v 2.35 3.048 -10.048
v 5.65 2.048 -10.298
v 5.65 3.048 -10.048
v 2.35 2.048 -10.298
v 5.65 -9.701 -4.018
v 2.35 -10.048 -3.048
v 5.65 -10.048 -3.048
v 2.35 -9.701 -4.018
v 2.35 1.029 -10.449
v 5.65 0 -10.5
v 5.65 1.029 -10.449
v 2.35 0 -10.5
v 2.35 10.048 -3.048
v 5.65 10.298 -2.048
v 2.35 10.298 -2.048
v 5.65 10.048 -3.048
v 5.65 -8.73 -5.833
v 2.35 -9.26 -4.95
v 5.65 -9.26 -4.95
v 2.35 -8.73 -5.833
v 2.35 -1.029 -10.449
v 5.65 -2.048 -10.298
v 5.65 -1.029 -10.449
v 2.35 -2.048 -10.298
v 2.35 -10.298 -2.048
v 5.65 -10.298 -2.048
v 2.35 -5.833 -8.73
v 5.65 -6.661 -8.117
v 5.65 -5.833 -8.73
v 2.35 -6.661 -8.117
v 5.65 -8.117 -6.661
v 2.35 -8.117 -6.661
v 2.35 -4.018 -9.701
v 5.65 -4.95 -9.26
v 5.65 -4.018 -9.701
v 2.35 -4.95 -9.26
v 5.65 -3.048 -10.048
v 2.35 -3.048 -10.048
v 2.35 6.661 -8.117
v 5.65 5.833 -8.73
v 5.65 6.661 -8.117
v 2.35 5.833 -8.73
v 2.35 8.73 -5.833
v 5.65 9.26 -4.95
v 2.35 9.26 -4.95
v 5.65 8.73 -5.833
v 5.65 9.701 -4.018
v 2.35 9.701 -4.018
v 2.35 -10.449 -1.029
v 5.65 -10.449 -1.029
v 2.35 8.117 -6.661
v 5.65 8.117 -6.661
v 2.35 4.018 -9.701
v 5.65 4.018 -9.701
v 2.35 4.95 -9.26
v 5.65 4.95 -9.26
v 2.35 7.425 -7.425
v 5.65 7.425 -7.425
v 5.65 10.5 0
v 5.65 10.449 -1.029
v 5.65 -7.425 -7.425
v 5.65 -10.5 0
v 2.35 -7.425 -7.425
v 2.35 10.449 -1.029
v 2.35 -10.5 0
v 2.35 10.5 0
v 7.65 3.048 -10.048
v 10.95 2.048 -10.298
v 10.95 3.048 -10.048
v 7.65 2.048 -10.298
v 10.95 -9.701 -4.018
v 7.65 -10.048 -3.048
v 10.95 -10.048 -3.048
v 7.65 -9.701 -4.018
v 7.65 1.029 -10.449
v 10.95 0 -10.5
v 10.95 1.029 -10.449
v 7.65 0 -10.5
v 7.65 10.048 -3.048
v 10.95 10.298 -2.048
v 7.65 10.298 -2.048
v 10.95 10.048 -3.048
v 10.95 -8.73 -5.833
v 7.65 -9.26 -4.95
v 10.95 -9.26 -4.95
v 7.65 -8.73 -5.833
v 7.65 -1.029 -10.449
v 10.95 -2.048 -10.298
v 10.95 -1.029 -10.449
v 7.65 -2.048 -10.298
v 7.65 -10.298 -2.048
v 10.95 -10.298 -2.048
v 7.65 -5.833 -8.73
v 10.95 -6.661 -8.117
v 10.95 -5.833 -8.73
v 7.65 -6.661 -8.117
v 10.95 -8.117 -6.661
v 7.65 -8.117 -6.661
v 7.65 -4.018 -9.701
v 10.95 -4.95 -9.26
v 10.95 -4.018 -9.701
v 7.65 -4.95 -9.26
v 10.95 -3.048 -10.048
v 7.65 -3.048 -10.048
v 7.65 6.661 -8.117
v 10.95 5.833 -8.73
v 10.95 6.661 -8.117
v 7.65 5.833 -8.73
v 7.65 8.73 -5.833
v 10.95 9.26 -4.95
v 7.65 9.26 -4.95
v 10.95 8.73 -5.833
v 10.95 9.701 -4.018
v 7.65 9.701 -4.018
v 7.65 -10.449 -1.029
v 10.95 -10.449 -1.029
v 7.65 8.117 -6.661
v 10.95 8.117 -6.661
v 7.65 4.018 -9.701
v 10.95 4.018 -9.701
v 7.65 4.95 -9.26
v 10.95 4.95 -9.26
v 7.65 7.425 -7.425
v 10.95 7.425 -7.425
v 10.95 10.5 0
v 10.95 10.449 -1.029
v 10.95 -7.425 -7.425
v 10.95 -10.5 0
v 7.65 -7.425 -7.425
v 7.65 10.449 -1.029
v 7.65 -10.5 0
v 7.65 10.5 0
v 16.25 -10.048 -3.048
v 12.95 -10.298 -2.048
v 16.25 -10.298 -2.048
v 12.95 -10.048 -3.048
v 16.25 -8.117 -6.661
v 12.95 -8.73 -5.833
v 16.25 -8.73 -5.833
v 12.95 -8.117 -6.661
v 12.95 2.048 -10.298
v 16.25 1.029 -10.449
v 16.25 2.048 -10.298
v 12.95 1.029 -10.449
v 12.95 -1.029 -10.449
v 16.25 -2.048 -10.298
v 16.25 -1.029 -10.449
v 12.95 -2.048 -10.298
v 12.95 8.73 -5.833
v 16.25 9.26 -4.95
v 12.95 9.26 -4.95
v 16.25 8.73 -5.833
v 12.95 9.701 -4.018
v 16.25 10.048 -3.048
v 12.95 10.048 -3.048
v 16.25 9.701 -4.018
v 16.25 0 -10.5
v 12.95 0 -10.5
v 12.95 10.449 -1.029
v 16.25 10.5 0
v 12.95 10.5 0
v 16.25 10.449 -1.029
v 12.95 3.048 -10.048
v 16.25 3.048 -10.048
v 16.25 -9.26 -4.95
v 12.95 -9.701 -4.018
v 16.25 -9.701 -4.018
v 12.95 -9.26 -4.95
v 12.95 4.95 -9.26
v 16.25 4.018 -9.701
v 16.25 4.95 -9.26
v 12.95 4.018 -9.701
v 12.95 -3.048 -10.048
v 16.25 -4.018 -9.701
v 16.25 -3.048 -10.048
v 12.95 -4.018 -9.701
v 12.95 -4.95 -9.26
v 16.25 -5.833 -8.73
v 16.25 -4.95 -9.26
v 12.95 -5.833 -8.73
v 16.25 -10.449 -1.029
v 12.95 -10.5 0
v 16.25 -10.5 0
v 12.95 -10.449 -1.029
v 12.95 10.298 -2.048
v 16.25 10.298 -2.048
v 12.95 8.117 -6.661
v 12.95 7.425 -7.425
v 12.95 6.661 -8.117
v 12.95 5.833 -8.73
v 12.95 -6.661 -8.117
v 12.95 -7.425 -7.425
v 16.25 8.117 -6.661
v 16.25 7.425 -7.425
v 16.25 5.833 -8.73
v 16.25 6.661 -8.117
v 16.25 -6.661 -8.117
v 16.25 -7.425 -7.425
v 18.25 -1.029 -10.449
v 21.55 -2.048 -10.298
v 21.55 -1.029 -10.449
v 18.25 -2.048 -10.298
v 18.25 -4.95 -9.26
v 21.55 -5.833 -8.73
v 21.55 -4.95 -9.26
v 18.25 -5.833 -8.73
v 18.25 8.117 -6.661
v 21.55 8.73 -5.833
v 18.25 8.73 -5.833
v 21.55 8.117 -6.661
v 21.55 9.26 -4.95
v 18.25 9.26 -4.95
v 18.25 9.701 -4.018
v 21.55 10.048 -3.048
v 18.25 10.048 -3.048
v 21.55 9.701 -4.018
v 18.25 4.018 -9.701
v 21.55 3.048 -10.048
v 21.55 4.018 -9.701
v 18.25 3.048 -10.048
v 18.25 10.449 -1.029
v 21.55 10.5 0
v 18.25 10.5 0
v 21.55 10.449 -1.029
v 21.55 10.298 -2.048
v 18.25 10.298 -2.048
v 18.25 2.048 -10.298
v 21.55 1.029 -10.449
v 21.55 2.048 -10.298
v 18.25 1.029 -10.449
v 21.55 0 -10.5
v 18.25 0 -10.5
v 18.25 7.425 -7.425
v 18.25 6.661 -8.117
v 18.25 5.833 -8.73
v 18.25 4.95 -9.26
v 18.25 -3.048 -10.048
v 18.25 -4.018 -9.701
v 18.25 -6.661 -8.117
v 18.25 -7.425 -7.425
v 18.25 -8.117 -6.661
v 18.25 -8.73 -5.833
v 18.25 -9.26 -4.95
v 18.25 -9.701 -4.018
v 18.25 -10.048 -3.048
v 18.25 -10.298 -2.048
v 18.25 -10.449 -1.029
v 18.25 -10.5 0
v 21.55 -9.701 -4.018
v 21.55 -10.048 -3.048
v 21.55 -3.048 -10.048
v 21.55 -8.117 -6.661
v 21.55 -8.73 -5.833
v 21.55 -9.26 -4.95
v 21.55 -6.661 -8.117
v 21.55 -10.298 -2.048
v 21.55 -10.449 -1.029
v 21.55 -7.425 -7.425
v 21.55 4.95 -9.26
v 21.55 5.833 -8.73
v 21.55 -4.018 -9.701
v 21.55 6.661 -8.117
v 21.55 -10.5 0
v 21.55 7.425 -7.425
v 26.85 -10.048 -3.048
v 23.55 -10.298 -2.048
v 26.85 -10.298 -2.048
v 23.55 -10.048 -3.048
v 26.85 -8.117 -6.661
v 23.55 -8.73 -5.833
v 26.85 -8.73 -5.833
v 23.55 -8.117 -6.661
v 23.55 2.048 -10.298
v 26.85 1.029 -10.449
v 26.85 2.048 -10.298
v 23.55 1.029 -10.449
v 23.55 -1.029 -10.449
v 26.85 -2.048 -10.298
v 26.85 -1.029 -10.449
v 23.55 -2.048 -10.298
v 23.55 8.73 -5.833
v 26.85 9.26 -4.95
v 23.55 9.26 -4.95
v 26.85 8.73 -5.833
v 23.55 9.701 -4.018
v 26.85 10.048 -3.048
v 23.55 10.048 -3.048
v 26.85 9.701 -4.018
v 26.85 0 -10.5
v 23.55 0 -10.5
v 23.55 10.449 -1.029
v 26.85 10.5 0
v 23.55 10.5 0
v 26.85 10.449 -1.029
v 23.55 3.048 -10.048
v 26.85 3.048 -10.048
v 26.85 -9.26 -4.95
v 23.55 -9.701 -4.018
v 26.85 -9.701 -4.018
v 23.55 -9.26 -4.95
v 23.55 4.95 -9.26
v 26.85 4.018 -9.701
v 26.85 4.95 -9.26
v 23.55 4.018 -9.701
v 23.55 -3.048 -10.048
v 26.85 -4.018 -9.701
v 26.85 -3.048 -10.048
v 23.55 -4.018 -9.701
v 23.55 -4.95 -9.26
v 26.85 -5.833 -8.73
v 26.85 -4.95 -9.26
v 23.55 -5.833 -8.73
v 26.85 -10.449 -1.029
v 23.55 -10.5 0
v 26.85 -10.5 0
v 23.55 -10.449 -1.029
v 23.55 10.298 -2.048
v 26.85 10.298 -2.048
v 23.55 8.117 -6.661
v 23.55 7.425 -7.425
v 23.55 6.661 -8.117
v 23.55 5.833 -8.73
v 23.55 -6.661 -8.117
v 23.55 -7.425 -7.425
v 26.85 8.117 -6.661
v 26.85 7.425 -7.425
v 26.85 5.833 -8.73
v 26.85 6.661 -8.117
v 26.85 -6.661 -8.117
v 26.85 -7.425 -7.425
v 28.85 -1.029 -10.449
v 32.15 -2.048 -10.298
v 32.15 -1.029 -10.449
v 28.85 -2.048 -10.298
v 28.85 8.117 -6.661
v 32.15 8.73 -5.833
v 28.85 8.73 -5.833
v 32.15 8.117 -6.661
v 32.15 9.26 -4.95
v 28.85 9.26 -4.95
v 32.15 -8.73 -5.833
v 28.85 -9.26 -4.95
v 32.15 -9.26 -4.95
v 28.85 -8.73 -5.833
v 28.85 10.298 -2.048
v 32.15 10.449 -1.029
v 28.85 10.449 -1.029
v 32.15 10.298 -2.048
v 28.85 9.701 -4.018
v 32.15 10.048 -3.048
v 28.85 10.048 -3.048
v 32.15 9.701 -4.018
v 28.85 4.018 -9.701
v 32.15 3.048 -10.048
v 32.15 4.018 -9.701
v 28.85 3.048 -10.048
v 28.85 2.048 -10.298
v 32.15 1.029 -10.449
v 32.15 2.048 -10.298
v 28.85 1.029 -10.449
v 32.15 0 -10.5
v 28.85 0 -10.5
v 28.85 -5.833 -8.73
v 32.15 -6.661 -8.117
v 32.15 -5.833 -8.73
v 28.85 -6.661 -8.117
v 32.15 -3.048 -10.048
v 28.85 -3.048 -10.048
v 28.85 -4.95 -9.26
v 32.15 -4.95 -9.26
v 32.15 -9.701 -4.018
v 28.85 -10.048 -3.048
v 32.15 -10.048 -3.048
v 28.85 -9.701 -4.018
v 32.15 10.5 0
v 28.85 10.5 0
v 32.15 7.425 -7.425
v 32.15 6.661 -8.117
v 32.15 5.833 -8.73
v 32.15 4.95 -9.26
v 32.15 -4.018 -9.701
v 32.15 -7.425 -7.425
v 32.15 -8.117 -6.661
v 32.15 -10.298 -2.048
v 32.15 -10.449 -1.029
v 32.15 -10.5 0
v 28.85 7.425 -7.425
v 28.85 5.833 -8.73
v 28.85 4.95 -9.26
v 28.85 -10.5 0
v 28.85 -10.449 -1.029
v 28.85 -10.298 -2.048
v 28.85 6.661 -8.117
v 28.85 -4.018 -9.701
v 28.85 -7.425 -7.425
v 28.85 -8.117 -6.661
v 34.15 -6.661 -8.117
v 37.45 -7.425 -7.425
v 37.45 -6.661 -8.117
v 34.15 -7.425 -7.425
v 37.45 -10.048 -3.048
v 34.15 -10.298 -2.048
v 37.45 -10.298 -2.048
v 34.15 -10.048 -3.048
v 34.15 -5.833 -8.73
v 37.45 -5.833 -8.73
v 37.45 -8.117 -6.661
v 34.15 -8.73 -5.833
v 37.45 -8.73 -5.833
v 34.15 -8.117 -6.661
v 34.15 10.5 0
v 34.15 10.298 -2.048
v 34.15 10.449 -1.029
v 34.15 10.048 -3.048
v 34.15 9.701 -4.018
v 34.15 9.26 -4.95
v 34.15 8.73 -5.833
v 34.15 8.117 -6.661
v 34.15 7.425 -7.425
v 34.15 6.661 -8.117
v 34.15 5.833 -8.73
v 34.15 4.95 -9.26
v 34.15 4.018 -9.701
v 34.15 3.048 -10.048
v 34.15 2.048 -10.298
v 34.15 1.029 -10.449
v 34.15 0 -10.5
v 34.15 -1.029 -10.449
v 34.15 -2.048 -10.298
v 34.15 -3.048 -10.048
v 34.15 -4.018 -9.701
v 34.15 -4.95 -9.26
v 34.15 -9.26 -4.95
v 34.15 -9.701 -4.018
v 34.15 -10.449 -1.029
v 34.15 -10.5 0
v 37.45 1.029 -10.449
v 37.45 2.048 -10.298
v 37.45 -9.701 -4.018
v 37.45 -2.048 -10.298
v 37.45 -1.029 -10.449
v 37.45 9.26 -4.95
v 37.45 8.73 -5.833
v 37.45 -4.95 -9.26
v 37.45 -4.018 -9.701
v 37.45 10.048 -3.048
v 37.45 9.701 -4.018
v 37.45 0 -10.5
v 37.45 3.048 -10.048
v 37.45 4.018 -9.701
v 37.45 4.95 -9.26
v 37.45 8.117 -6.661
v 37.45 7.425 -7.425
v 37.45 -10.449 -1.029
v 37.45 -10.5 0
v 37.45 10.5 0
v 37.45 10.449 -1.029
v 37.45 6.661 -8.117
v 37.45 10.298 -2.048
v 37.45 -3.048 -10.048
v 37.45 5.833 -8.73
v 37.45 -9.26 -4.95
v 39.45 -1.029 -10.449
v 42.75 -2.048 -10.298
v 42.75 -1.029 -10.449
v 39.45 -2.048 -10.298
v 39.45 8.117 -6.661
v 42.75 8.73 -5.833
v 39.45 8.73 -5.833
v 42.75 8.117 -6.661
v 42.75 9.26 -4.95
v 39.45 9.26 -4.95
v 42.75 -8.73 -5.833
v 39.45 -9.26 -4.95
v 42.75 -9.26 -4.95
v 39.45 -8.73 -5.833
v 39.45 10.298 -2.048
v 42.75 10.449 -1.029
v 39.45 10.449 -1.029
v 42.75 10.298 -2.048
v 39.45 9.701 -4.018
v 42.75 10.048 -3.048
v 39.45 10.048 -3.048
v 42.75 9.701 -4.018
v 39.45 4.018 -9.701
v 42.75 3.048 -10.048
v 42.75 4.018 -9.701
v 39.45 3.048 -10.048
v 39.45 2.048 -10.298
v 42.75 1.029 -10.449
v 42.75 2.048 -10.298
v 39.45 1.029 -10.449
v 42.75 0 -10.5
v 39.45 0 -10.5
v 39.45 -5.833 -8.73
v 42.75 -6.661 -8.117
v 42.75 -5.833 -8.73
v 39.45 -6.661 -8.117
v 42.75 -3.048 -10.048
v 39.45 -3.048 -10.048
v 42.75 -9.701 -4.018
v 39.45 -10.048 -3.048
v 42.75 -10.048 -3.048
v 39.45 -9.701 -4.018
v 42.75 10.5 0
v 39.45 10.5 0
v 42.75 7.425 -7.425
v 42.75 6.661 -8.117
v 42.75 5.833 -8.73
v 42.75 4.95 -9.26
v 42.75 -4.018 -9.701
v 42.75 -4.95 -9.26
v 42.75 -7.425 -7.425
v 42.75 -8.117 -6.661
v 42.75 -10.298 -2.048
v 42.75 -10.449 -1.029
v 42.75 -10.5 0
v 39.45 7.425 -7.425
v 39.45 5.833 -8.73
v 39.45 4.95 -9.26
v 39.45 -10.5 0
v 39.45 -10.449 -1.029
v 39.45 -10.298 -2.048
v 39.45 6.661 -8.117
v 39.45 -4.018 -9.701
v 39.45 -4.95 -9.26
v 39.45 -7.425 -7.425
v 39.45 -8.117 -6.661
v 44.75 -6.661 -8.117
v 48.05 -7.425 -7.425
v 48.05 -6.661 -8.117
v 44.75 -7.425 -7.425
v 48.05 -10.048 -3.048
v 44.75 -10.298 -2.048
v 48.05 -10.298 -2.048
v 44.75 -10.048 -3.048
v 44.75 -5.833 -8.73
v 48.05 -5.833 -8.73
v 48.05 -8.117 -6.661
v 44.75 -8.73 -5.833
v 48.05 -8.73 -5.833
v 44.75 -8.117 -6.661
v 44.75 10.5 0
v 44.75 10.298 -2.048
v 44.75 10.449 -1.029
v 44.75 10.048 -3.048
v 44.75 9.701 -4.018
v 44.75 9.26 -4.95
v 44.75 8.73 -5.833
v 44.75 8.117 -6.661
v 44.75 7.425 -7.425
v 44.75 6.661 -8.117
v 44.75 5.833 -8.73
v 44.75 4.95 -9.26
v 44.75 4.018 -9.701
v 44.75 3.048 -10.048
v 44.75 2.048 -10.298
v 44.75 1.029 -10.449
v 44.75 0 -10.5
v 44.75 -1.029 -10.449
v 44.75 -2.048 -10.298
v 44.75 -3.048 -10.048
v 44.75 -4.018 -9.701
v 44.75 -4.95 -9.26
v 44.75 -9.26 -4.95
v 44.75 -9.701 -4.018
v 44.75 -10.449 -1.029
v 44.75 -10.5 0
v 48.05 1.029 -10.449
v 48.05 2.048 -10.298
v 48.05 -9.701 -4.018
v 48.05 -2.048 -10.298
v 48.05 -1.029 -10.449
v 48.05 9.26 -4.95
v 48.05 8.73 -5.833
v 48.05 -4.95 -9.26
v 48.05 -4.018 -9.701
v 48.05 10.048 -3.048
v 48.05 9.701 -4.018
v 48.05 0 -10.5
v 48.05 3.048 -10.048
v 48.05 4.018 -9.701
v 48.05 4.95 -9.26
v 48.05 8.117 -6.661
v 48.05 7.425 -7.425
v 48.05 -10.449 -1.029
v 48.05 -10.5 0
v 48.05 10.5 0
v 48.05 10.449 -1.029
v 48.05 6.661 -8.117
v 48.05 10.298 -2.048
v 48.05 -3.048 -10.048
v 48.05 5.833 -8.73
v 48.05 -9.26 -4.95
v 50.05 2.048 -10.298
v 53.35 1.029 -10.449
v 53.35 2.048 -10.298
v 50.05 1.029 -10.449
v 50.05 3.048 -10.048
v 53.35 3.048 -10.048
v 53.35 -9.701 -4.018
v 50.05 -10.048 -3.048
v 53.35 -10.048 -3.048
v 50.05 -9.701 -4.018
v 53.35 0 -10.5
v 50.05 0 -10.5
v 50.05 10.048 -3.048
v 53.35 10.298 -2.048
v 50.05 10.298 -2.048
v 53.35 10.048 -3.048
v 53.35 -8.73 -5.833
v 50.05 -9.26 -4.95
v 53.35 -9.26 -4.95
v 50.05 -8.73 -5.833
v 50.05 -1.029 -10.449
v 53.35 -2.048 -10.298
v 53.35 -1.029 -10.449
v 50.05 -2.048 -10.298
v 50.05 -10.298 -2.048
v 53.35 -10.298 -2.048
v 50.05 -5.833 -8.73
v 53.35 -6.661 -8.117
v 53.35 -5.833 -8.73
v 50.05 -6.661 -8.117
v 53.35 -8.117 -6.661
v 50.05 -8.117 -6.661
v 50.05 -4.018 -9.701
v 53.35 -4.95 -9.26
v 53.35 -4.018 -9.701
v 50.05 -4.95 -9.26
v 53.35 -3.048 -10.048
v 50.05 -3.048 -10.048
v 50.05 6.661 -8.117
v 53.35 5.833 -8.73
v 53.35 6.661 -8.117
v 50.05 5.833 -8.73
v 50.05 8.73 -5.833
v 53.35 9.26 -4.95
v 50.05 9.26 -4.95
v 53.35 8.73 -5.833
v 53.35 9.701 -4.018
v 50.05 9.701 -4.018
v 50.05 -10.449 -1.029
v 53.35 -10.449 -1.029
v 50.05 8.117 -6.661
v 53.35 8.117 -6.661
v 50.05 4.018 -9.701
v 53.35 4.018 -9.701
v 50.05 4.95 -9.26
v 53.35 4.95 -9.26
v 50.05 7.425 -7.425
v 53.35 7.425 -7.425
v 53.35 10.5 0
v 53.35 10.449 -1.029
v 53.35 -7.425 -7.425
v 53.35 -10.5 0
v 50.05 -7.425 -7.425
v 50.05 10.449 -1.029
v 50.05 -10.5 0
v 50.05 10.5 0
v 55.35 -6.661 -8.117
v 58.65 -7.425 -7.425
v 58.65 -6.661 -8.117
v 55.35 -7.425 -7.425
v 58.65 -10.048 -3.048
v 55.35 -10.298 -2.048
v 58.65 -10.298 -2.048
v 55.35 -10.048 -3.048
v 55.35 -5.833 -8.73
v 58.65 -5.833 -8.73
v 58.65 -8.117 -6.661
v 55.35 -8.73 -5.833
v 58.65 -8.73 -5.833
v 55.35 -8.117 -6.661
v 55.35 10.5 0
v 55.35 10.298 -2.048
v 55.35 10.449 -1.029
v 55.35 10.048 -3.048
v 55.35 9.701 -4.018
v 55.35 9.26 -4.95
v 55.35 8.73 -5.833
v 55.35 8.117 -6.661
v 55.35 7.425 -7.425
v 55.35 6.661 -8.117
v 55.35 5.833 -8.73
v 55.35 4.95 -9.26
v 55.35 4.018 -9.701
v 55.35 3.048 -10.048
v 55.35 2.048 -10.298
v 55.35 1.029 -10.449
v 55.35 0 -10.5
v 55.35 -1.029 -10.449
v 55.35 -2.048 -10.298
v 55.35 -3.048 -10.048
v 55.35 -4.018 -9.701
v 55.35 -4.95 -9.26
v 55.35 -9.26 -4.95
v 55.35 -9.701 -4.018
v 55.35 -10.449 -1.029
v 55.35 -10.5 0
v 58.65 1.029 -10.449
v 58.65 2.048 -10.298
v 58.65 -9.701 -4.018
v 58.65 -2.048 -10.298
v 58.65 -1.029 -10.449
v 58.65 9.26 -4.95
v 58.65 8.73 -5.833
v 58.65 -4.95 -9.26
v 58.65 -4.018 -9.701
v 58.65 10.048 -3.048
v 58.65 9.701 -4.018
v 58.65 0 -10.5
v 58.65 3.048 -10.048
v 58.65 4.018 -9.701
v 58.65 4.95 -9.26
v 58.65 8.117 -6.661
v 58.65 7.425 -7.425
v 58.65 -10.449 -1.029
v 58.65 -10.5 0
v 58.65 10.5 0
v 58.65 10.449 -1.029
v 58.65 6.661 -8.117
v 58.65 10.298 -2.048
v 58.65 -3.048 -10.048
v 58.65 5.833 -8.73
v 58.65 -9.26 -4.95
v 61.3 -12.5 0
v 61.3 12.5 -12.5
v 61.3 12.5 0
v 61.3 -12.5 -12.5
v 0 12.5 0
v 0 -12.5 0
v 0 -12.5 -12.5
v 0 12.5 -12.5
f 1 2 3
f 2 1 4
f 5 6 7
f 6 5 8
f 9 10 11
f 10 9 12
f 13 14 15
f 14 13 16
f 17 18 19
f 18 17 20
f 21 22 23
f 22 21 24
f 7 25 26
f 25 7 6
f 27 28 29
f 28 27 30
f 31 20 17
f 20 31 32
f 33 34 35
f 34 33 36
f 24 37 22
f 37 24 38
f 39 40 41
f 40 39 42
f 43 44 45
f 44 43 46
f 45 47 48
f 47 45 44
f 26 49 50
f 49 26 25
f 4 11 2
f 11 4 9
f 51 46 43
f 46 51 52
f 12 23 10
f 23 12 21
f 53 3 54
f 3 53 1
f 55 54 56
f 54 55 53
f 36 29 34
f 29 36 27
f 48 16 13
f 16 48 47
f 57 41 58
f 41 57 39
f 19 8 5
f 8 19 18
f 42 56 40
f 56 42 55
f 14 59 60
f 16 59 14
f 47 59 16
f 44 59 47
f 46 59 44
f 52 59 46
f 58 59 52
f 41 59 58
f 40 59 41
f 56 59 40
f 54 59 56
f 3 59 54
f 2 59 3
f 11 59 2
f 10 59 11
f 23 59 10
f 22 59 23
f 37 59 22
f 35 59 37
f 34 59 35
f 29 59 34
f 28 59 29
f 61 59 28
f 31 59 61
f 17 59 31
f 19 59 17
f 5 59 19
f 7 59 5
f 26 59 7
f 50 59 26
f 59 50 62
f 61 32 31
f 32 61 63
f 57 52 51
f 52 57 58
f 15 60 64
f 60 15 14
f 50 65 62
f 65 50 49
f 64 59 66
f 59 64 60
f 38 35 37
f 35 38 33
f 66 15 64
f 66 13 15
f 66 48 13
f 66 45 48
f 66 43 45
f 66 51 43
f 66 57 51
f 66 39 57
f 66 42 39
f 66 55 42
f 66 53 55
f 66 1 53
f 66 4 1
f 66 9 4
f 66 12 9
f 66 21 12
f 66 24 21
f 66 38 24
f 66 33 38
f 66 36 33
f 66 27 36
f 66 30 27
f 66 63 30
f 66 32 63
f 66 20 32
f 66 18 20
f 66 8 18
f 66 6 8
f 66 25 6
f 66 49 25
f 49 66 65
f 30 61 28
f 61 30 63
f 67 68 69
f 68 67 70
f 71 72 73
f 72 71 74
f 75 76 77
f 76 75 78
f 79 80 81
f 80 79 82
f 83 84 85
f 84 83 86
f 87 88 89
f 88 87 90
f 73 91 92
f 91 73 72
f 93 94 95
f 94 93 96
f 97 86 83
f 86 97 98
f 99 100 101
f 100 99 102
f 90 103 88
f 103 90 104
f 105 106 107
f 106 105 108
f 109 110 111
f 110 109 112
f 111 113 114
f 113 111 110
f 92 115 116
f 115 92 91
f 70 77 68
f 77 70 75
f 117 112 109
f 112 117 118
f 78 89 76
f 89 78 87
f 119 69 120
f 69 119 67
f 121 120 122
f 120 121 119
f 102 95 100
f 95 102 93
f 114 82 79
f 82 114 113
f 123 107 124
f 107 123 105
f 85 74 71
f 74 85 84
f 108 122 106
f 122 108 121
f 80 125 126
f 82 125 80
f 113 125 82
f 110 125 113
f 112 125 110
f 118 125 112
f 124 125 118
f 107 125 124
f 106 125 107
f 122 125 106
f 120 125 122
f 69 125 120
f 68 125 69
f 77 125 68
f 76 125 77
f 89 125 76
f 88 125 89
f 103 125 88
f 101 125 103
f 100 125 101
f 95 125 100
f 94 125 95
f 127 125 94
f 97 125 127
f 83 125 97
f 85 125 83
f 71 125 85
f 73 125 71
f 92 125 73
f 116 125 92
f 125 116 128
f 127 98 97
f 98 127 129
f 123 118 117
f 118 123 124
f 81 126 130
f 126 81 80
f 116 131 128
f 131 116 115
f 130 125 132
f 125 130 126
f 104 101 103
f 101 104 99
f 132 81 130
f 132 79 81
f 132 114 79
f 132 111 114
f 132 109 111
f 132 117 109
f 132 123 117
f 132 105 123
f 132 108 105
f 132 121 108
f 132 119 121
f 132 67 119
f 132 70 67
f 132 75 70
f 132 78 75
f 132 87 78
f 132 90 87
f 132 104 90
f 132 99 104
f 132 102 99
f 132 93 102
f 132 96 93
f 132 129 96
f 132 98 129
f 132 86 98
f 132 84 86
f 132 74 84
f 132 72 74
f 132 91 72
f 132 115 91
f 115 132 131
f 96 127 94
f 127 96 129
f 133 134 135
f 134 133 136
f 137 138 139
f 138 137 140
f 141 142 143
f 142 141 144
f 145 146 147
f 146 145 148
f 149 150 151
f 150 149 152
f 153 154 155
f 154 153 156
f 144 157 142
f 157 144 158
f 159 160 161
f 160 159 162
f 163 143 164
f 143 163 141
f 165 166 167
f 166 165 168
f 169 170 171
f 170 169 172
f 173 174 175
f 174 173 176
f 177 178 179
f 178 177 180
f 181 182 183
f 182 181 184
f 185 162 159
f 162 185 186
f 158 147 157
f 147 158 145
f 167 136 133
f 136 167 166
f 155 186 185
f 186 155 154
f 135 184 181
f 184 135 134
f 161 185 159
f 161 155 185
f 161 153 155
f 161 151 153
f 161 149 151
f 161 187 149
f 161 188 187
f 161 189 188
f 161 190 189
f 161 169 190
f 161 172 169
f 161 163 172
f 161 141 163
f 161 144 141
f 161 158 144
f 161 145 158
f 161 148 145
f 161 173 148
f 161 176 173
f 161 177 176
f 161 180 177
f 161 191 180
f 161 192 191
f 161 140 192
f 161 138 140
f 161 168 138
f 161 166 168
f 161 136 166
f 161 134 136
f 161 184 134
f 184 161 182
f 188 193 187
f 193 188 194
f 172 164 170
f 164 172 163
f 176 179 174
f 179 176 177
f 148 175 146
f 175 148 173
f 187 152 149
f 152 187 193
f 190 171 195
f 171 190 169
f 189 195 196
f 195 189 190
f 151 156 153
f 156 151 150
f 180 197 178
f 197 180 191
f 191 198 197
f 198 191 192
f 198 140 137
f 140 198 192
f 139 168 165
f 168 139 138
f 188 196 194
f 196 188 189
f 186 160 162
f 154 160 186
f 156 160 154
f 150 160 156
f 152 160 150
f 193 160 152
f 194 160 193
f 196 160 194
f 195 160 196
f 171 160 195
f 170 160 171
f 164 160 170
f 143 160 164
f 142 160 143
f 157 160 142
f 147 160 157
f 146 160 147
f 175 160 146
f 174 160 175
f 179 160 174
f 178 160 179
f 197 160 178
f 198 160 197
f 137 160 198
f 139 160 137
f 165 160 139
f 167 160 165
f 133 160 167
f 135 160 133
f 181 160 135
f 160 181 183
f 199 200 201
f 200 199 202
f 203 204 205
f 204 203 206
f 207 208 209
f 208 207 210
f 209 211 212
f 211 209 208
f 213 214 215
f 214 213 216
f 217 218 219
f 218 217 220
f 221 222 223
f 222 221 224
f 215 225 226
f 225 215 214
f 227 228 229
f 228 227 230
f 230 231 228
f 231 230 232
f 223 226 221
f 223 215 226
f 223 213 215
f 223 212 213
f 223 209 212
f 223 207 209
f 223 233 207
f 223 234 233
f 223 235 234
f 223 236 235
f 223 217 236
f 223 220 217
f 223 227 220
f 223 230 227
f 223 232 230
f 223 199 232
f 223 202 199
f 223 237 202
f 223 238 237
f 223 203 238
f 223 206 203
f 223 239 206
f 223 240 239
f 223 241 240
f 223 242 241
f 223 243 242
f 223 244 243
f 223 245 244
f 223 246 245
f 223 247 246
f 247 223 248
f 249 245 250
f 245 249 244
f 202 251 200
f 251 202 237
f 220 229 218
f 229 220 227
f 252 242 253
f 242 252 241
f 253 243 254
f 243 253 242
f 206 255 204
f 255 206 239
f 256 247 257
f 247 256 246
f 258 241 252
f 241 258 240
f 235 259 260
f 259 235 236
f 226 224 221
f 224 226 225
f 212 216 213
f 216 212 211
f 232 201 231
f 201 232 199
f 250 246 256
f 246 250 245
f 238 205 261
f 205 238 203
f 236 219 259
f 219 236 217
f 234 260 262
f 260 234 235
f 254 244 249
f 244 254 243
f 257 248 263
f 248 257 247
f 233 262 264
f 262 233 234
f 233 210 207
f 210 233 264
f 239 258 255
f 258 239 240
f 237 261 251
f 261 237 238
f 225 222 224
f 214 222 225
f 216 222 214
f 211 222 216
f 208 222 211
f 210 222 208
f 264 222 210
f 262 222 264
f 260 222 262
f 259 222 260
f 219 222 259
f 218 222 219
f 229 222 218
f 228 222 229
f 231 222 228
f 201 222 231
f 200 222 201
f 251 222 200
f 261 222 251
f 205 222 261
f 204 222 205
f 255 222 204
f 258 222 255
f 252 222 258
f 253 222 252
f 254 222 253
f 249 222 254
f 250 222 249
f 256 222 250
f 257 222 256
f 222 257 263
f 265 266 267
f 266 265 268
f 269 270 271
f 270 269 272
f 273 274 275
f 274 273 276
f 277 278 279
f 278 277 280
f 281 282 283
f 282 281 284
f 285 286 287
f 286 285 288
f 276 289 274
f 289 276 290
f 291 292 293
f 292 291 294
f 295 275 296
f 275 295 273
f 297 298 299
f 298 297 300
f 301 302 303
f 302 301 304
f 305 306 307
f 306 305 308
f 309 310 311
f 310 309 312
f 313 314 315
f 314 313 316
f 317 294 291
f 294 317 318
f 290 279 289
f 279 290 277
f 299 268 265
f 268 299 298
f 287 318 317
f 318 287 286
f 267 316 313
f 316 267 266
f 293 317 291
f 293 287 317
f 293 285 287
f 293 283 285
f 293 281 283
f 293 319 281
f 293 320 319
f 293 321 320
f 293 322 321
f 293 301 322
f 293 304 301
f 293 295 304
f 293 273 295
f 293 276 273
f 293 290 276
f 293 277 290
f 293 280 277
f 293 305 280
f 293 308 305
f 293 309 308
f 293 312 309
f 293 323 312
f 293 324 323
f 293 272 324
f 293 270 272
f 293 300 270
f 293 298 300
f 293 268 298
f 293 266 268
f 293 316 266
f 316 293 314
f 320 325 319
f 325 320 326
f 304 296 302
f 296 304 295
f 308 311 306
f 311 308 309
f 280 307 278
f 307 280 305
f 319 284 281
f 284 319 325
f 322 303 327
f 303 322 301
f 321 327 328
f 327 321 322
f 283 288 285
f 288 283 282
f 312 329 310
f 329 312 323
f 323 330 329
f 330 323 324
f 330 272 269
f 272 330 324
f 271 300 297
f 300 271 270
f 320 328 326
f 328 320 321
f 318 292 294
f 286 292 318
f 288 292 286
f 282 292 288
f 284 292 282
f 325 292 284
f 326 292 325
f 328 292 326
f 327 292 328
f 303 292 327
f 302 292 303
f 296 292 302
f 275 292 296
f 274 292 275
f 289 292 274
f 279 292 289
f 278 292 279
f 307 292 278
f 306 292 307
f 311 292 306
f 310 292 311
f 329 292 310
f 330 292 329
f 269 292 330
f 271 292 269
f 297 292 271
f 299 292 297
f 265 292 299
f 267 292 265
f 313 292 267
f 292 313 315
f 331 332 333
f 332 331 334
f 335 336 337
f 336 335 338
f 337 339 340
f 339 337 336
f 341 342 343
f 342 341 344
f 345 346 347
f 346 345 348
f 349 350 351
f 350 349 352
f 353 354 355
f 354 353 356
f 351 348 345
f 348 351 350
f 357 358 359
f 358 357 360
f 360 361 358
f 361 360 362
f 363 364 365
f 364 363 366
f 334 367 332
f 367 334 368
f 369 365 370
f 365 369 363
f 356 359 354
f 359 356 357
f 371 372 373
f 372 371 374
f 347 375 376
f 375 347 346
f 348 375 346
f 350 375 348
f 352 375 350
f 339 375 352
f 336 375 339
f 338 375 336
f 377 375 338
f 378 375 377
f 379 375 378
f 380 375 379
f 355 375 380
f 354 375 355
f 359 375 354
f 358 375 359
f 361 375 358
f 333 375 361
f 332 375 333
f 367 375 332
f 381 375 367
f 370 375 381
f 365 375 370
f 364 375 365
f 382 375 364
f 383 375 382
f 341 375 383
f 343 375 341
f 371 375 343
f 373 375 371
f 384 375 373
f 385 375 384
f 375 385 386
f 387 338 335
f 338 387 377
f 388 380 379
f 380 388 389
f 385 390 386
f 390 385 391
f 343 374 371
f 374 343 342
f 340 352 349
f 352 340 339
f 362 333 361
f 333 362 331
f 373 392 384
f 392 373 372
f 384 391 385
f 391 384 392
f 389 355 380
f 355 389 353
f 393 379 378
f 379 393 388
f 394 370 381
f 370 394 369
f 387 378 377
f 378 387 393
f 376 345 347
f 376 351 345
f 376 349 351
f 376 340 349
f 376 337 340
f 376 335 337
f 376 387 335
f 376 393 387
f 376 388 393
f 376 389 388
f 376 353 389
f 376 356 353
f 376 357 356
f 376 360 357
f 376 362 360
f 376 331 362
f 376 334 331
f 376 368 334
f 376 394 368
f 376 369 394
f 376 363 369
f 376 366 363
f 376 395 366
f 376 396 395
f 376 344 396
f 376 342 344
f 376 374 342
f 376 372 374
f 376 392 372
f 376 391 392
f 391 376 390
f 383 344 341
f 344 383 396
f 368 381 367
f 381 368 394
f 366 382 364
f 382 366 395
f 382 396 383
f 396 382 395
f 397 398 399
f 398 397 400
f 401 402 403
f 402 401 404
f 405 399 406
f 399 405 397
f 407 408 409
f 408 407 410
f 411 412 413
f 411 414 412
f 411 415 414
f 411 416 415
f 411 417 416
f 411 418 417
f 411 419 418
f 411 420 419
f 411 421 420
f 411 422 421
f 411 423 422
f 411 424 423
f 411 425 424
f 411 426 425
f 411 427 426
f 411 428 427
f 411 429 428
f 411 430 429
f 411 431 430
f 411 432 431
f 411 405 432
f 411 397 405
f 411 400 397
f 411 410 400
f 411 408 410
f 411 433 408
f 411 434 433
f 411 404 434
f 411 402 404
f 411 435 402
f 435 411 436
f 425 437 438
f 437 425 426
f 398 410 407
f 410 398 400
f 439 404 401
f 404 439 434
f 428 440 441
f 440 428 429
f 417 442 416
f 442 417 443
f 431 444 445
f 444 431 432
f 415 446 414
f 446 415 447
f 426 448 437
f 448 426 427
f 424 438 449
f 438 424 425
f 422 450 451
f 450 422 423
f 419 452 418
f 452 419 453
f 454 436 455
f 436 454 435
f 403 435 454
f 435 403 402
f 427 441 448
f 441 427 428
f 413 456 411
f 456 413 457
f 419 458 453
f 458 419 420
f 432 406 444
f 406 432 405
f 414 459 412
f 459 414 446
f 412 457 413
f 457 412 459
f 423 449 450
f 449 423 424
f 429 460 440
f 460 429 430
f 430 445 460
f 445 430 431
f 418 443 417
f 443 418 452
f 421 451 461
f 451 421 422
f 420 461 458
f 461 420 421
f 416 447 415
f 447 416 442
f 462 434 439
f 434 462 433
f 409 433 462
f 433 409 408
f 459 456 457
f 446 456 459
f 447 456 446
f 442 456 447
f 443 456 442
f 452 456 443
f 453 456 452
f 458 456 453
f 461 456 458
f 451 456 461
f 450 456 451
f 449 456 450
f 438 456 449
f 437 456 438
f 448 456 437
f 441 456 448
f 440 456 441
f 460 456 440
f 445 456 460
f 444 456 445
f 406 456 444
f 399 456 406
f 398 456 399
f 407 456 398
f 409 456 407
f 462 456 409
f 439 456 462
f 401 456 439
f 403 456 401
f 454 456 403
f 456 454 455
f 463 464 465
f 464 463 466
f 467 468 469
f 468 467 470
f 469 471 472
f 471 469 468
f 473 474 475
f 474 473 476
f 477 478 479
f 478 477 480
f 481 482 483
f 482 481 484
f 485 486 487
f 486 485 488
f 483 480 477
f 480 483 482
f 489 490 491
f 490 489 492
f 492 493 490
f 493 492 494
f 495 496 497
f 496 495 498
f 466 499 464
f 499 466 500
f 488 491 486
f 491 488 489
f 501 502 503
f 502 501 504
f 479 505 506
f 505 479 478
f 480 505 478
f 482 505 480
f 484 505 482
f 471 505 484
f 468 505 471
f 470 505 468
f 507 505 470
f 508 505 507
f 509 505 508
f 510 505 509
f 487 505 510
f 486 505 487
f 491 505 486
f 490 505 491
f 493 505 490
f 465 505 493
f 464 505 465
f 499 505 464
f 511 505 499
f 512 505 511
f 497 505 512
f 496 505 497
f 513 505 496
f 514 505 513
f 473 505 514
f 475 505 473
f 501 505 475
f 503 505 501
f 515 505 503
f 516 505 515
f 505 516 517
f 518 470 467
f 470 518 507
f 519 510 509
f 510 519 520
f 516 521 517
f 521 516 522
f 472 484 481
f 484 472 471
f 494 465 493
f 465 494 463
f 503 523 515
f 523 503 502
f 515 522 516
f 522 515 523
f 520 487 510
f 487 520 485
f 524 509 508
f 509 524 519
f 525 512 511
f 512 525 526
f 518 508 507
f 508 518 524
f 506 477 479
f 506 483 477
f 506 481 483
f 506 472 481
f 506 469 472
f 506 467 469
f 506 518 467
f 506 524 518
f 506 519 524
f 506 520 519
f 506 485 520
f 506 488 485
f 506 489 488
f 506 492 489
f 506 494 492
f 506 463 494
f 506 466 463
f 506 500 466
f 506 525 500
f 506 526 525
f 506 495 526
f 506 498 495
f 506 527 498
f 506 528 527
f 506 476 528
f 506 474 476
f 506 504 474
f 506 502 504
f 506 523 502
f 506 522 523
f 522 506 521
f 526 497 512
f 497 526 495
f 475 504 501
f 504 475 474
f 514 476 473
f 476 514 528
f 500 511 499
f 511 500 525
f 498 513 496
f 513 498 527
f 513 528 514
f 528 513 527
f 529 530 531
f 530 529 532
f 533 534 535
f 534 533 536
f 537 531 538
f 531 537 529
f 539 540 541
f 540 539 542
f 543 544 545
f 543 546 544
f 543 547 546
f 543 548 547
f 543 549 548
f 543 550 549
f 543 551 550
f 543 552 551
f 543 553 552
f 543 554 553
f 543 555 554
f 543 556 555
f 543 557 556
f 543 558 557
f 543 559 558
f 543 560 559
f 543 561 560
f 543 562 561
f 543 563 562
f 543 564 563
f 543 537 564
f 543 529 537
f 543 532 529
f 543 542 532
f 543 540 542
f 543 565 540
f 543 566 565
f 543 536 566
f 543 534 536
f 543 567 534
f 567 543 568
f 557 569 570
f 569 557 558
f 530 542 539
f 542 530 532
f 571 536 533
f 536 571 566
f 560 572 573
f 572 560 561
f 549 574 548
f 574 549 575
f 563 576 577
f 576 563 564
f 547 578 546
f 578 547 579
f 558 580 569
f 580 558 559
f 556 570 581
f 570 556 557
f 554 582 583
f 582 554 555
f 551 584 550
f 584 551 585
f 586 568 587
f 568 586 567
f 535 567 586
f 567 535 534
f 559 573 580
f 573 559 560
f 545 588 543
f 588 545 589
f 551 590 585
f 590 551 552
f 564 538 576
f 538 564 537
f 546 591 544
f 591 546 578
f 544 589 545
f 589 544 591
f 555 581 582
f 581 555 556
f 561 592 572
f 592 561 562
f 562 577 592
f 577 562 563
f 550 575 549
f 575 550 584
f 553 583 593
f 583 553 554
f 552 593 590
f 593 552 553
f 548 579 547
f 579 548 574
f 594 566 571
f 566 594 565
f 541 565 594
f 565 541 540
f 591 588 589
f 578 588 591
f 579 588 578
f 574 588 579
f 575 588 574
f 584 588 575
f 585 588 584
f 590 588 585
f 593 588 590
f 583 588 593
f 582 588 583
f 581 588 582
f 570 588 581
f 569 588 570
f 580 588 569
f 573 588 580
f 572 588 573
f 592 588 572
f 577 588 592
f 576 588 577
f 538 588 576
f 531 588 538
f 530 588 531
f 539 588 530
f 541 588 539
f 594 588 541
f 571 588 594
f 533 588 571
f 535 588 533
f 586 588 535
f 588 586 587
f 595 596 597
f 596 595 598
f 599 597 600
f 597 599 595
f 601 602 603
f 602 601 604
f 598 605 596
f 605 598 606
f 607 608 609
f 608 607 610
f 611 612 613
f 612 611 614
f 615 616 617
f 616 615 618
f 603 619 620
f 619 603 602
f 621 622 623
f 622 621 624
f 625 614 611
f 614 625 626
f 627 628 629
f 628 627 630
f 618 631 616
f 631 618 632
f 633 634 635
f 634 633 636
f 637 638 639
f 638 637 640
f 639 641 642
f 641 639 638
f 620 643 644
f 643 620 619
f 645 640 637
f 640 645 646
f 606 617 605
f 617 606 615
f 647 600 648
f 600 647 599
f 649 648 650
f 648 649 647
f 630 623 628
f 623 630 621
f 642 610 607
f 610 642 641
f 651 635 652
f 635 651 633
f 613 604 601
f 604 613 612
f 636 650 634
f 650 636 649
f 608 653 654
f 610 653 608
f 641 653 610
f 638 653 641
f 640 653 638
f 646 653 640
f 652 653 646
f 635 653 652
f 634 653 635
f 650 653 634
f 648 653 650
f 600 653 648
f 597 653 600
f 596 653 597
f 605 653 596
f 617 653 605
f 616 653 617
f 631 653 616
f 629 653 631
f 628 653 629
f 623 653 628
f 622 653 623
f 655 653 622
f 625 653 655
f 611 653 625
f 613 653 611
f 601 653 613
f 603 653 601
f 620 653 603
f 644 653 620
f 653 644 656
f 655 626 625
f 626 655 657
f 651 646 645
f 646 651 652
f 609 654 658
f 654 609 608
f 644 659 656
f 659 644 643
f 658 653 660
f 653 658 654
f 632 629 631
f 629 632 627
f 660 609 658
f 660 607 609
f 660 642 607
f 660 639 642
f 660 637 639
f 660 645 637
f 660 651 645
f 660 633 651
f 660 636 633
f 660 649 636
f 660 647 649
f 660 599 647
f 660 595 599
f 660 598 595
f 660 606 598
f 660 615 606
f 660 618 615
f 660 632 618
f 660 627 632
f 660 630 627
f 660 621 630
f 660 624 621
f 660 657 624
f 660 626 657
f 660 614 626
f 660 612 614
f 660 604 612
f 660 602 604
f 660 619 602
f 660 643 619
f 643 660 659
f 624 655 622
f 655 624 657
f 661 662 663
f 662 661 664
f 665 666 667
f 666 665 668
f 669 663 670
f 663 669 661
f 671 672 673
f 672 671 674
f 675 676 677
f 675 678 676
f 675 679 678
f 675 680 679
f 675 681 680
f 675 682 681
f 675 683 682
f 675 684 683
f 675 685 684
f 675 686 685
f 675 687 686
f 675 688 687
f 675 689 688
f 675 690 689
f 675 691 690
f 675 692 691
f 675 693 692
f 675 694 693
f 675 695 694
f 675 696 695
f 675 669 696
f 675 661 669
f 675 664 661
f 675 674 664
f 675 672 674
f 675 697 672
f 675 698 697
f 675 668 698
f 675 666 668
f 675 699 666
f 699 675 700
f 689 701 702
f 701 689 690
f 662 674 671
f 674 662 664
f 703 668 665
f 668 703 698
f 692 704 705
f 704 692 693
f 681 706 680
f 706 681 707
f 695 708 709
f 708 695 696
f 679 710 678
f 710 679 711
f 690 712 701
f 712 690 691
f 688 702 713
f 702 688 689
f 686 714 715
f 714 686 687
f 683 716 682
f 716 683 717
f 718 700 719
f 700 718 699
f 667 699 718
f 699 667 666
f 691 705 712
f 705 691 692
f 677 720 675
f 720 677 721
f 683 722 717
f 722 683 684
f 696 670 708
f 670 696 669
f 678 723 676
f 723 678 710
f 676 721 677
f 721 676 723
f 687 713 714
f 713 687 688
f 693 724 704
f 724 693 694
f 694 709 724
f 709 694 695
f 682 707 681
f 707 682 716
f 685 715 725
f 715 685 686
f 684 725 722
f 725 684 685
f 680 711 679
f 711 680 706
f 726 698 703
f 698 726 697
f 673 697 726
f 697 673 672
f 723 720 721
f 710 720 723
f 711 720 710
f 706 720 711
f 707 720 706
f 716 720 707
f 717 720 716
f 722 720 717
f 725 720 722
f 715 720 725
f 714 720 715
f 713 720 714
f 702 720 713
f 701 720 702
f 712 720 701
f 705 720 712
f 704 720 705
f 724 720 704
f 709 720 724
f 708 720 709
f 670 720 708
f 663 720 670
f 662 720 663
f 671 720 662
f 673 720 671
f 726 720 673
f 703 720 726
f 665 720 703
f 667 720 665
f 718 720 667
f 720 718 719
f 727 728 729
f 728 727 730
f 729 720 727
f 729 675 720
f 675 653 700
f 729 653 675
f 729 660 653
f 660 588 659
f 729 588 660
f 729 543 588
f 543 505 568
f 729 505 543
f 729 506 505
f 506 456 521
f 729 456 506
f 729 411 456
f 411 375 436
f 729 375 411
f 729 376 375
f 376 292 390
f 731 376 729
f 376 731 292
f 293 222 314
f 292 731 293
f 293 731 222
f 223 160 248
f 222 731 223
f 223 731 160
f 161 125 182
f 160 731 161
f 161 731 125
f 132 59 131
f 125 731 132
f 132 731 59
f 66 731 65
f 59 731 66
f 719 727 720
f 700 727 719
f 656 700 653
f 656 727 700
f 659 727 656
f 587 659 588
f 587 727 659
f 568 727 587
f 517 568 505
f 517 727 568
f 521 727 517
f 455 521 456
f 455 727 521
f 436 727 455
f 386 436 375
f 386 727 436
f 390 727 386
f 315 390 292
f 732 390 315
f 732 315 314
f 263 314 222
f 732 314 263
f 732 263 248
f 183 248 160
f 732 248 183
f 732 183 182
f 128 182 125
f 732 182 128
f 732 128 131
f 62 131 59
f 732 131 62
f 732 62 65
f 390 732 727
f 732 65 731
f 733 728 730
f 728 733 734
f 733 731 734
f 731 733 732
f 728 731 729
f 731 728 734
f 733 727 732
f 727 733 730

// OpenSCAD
$fn = 64;
d = 10.5;
h = 3.3;
w = 1;


difference(){
//cylinder(h+2*w,d+w,d+w, true);
translate([0,-d-w*2,-d-2*w]) cube([11*(h+2*w)+3*w,2*d+4*w,d+2*w]); 
	
translate([w*4,0,0]) for(x = [0:10]) {
	translate([x*(h+2*w),0,0]) rotate([0,90,0]) cylinder(h,d,d,true);
}
}
